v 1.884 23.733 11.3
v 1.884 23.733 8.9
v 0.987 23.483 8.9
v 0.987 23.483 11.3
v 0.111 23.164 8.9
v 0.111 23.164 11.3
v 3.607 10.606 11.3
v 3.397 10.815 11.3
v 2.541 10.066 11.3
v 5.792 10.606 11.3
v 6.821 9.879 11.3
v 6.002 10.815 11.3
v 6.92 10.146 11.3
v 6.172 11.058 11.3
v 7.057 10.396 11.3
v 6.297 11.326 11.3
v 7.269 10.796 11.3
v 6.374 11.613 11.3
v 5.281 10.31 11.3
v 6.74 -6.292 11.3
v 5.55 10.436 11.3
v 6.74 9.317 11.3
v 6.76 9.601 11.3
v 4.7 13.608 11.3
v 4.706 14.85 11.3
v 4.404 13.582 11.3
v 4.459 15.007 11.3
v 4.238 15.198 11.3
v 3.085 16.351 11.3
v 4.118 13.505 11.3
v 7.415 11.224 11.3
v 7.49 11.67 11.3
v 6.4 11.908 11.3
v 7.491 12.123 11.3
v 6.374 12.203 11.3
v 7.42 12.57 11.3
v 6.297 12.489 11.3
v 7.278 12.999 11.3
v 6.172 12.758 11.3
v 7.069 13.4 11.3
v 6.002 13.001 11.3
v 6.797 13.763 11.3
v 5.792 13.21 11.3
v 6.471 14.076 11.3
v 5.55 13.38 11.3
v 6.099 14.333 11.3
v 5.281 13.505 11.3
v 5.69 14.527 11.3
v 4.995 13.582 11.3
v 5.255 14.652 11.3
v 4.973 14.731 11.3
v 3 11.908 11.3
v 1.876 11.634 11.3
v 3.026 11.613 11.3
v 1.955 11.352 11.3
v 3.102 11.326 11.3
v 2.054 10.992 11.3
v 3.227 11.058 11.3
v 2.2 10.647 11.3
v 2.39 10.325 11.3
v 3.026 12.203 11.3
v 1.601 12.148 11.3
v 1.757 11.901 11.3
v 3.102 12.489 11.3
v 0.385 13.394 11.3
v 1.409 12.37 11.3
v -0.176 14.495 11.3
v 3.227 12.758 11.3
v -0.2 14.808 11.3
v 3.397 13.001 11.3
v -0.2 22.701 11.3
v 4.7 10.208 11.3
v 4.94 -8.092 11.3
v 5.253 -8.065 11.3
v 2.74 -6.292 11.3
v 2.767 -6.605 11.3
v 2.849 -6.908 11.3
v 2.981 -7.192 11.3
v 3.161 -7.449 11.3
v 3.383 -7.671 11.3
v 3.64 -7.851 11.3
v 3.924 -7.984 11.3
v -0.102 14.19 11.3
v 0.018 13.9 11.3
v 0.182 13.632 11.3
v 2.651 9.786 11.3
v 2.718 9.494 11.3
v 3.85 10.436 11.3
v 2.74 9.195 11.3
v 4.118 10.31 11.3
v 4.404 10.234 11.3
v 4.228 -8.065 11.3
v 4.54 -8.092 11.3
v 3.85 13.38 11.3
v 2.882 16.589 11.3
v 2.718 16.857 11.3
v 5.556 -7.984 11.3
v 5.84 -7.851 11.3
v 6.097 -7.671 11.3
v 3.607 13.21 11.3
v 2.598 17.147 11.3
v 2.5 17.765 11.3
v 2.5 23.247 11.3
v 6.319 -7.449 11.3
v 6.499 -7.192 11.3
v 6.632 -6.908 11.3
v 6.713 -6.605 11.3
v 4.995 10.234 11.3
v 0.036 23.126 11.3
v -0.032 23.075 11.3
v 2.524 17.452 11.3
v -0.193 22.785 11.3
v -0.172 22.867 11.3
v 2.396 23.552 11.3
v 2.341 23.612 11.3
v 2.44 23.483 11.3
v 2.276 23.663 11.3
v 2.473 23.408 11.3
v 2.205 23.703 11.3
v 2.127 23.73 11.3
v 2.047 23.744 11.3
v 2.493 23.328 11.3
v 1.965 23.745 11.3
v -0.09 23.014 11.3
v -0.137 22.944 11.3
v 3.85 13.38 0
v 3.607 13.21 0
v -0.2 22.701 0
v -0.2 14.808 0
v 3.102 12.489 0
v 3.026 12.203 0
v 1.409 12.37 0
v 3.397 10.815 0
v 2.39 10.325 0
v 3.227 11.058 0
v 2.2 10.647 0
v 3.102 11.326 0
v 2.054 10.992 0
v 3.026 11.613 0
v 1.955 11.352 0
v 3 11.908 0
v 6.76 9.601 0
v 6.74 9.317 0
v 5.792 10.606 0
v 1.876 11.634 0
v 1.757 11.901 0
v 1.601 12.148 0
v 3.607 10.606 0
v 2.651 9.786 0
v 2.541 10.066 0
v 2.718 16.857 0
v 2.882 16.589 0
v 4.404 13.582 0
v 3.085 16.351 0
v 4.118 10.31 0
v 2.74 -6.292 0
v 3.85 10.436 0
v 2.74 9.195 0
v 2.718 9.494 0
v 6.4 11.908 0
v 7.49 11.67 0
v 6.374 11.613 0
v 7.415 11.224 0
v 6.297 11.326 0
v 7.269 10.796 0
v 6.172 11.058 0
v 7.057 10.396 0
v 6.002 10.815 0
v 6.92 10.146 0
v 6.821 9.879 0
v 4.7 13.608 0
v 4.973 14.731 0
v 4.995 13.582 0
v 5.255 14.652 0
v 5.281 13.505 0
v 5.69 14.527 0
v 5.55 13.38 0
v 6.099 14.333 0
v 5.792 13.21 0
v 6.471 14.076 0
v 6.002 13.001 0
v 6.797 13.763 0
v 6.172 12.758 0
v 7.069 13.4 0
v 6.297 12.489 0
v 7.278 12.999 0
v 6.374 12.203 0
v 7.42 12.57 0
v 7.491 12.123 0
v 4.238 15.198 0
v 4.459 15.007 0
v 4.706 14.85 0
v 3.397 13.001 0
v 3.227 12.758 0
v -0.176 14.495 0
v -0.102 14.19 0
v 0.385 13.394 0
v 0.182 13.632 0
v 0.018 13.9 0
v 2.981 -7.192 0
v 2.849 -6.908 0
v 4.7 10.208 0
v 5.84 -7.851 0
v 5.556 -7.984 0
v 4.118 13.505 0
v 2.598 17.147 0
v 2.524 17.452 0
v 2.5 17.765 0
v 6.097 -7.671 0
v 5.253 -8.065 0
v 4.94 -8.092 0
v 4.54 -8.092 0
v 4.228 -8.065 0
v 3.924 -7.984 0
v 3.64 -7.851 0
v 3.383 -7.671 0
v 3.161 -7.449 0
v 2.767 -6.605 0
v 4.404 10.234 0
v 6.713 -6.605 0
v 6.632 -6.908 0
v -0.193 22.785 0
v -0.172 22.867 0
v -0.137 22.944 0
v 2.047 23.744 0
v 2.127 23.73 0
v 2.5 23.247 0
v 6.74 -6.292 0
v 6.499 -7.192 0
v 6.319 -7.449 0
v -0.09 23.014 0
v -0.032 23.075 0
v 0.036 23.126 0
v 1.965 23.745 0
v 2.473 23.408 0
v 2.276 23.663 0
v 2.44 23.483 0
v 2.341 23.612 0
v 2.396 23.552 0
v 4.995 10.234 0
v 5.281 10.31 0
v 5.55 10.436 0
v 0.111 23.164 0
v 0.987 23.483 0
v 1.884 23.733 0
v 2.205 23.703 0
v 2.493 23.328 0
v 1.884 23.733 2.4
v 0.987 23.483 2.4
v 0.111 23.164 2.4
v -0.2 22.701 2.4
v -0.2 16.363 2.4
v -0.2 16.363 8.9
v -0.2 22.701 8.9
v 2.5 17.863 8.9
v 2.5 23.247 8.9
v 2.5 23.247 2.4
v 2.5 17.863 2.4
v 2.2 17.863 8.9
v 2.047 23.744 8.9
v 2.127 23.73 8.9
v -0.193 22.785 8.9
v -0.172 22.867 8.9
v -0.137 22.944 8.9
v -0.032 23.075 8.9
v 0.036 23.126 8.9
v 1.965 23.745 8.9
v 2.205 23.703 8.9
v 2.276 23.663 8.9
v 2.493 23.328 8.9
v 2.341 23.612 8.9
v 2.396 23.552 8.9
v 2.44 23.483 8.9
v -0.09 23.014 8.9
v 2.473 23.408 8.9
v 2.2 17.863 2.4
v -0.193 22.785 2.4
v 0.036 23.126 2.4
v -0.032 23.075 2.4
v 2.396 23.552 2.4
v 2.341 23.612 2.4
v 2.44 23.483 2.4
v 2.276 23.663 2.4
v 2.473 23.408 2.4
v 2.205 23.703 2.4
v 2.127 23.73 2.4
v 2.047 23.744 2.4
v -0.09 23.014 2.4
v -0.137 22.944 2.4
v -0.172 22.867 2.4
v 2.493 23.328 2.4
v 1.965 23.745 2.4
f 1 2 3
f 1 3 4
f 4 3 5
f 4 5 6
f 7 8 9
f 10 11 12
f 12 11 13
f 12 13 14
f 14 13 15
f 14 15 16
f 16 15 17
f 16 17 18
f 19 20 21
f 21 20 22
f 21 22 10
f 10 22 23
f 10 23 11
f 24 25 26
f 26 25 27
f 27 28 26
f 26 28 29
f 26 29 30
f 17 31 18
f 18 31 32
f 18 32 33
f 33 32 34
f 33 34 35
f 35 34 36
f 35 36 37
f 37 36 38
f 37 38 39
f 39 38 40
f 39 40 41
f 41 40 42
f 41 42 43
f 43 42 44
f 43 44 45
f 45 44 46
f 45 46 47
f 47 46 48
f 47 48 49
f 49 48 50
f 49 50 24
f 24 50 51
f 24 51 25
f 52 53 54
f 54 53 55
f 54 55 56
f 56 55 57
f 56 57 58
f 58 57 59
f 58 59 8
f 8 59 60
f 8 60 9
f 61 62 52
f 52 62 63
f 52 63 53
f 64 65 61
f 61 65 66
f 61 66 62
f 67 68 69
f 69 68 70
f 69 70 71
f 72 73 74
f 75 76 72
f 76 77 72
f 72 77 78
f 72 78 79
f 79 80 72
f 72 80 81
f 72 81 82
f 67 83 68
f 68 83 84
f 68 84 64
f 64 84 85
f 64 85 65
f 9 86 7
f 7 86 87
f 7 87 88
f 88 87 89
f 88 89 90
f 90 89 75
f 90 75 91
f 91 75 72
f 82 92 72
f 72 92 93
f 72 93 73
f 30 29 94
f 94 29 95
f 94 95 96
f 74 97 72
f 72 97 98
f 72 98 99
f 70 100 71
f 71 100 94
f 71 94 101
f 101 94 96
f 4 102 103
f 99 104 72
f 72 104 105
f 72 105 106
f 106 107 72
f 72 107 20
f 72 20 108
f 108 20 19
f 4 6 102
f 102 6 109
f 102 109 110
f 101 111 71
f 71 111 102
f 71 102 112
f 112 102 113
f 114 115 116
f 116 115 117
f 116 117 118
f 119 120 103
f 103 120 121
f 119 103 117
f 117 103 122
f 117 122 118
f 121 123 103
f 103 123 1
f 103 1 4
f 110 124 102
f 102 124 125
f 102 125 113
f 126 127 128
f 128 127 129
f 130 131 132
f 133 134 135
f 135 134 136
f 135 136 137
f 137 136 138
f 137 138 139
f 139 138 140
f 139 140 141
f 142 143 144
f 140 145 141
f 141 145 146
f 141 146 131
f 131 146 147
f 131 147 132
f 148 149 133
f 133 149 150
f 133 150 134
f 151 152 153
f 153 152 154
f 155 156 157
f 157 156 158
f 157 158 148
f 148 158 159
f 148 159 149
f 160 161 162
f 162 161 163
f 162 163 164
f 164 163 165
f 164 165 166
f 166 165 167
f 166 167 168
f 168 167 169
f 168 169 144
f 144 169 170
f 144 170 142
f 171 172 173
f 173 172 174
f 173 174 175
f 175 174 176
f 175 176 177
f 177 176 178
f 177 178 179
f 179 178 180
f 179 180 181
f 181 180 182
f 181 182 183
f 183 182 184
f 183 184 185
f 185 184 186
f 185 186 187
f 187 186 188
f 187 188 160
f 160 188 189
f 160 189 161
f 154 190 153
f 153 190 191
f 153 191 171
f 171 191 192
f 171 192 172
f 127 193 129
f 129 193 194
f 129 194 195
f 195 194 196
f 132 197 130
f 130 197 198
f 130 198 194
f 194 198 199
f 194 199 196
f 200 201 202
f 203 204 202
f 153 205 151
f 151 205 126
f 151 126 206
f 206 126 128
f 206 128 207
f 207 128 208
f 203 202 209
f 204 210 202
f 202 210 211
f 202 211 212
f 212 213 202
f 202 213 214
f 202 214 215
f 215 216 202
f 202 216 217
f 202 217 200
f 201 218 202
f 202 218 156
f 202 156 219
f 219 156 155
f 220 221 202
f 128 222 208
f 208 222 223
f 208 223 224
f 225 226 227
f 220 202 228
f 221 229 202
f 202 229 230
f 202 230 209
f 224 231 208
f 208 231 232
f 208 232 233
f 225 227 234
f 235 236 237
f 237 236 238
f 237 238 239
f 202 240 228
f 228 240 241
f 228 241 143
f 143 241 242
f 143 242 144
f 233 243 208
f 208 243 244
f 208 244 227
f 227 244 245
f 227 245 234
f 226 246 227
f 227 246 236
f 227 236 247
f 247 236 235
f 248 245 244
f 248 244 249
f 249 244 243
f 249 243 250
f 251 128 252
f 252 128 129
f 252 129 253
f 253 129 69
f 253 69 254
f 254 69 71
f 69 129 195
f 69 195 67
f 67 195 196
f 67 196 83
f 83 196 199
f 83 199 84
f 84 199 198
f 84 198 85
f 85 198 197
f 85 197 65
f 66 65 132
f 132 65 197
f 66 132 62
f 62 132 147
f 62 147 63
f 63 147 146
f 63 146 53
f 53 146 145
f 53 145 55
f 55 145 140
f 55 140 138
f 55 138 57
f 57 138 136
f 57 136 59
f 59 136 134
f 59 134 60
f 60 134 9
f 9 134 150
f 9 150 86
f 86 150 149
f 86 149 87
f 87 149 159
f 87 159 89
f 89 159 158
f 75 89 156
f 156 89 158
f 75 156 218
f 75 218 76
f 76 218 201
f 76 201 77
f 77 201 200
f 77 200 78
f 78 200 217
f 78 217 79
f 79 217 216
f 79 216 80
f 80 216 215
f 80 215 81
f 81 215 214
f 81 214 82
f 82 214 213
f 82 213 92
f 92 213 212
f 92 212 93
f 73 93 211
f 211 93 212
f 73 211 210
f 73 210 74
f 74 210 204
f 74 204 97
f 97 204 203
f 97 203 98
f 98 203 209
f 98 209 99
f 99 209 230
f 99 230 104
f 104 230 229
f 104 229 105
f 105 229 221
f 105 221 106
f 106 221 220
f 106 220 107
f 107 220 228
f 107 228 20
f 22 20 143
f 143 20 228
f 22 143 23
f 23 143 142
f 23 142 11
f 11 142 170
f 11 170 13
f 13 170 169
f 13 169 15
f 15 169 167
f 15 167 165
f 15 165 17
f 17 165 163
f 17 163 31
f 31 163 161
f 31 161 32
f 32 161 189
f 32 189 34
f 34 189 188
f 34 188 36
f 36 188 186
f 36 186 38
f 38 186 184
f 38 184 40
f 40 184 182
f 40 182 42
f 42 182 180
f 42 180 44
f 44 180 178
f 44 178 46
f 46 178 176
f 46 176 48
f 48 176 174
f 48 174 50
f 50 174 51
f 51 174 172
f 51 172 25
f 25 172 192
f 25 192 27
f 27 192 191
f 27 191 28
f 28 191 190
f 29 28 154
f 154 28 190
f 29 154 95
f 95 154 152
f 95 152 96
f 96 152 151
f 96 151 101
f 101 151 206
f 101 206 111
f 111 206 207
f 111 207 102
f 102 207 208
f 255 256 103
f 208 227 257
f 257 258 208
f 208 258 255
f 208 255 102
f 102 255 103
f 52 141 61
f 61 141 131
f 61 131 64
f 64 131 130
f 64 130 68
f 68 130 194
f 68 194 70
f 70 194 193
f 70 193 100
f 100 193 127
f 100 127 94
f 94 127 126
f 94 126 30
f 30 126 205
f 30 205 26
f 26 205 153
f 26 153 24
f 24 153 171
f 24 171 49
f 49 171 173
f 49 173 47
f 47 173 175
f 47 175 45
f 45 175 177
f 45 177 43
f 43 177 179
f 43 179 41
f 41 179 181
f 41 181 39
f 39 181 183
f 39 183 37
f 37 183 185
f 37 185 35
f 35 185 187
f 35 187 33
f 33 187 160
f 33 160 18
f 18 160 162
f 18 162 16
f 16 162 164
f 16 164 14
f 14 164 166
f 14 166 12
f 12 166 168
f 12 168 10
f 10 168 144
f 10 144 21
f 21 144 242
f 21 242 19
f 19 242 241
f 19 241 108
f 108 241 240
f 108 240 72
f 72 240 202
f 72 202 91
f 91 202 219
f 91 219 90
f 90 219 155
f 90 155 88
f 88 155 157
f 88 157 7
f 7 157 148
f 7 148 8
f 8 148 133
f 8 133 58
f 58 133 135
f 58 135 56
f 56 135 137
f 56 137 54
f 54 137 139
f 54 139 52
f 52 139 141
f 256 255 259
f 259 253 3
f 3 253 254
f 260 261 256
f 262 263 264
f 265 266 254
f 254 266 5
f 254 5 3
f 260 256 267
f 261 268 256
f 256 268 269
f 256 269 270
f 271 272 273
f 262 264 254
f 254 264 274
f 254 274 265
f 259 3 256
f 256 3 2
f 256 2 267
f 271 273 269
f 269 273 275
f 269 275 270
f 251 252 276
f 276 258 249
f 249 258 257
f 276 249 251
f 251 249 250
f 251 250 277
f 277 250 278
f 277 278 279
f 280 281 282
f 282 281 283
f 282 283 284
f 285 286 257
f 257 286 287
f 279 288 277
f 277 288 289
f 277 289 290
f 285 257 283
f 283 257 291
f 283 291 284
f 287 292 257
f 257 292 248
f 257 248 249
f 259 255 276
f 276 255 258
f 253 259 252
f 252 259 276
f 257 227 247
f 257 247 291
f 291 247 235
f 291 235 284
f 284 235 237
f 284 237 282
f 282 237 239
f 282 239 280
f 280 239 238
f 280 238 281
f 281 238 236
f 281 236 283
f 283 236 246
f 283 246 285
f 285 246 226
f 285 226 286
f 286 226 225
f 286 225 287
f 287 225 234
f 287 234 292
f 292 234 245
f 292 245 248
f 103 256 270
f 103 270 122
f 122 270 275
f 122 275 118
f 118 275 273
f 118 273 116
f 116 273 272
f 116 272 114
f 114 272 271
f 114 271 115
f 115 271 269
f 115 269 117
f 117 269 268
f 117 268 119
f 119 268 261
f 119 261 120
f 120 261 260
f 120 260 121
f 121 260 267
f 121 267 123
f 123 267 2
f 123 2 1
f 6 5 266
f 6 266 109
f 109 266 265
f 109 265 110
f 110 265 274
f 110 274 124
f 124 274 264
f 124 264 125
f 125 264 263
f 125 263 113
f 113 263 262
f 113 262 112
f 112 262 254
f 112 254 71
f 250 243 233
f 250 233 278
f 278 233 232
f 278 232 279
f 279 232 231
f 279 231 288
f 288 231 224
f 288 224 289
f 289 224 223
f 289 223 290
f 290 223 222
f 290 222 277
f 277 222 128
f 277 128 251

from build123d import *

# Parameters (mm, degrees)
SKETCH1_R           = 1.7
BOSS_EXTRUDE1_DEPTH = 11.3
CUT_EXTRUDE1_REACH  = 28.872
SKETCH2_W           = 6.5
SKETCH2_H           = 6
CHAMFER1_SIZE       = 1.5
CHAMFER1_SIZE2      = 2.400501794
FILLET1_R           = 0.5


with BuildPart() as part:
    # Sketch1 → Boss-Extrude1 (new body)
    with BuildSketch(Plane.XY):
        with BuildLine():
            Line((2.74010383, 9.194695421), (2.74010383, -6.292071669))
            ThreePointArc((2.74010383, -6.292071669), (3.267311624, -7.564863875), (4.54010383, -8.092071669))
            Line((4.54010383, -8.092071669), (4.94010383, -8.092071669))
            ThreePointArc((4.94010383, -8.092071669), (6.212896036, -7.564863875), (6.74010383, -6.292071669))
            Line((6.74010383, -6.292071669), (6.74010383, 9.316577037))
            ThreePointArc((6.74010383, 9.316577037), (6.820858296, 9.879157325), (7.056600411, 10.396306743))
            ThreePointArc((7.056600411, 10.396306743), (7.278226145, 12.999340422), (5.255181103, 14.652274498))
            ThreePointArc((5.255181103, 14.652274498), (4.706198335, 14.850267069), (4.237742883, 15.198308197))
            Line((4.237742883, 15.198308197), (3.085482062, 16.350569018))
            ThreePointArc((3.085482062, 16.350569018), (2.651936559, 16.999415716), (2.499695624, 17.764782581))
            Line((2.499695624, 17.764782581), (2.499695624, 23.862962388))
            ThreePointArc((2.499695624, 23.862962388), (1.125485543, 23.526356004), (-0.200304376, 23.032353678))
            Line((-0.200304376, 23.032353678), (-0.200304376, 14.807928331))
            ThreePointArc((-0.200304376, 14.807928331), (-0.048063441, 14.042561466), (0.385482062, 13.393714769))
            Line((0.385482062, 13.393714769), (1.409315758, 12.369881073))
            ThreePointArc((1.409315758, 12.369881073), (1.757356887, 11.901425621), (1.955349457, 11.352442852))
            ThreePointArc((1.955349457, 11.352442852), (2.120974174, 10.816967431), (2.389933744, 10.325209134))
            ThreePointArc((2.389933744, 10.325209134), (2.650556633, 9.786447131), (2.74010383, 9.194695421))
        make_face()
        with Locations((4.699695624, 11.907928331)):
            Circle(SKETCH1_R, mode=Mode.SUBTRACT)
    extrude(amount=BOSS_EXTRUDE1_DEPTH)

    # Sketch2 → Cut-Extrude1 (cut, up to next)
    with BuildSketch(Plane(origin=(2.499695624, 0, 0), x_dir=(0, 0, -1), z_dir=(1, 0, 0)), mode=Mode.PRIVATE) as cut_extrude1_sk1:
        with Locations((-5.65, 20.862962388)):
            Rectangle(SKETCH2_W, SKETCH2_H)
    cut_extrude1_tool1 = extrude(cut_extrude1_sk1.sketch, amount=-CUT_EXTRUDE1_REACH, mode=Mode.PRIVATE) & part.part
    add(cut_extrude1_tool1.solids().sort_by_distance((2.499696, 20.862962, 5.65))[0], mode=Mode.SUBTRACT)

    # Chamfer1
    chamfer1_edges = [part.edges().sort_by_distance(p)[0] for p in [
        (-0.200304376, 17.862962388, 5.65),
    ]]
    chamfer1_side = [part.faces().sort_by_distance(p)[0] for p in [
        (-0.200304376, 18.920141005, 0.139760929),
    ]]
    chamfer(chamfer1_edges, length=CHAMFER1_SIZE, length2=CHAMFER1_SIZE2, reference=chamfer1_side[0])

    # Fillet1
    fillet1_edges = [part.edges().sort_by_distance(p)[0] for p in [
        (2.499695624, 23.862962388, 10.1),
        (-0.200304376, 23.032353678, 10.1),
        (2.499695624, 23.862962388, 1.2),
        (-0.200304376, 23.032353678, 1.2),
    ]]
    fillet(fillet1_edges, radius=FILLET1_R)


solid = part.part
